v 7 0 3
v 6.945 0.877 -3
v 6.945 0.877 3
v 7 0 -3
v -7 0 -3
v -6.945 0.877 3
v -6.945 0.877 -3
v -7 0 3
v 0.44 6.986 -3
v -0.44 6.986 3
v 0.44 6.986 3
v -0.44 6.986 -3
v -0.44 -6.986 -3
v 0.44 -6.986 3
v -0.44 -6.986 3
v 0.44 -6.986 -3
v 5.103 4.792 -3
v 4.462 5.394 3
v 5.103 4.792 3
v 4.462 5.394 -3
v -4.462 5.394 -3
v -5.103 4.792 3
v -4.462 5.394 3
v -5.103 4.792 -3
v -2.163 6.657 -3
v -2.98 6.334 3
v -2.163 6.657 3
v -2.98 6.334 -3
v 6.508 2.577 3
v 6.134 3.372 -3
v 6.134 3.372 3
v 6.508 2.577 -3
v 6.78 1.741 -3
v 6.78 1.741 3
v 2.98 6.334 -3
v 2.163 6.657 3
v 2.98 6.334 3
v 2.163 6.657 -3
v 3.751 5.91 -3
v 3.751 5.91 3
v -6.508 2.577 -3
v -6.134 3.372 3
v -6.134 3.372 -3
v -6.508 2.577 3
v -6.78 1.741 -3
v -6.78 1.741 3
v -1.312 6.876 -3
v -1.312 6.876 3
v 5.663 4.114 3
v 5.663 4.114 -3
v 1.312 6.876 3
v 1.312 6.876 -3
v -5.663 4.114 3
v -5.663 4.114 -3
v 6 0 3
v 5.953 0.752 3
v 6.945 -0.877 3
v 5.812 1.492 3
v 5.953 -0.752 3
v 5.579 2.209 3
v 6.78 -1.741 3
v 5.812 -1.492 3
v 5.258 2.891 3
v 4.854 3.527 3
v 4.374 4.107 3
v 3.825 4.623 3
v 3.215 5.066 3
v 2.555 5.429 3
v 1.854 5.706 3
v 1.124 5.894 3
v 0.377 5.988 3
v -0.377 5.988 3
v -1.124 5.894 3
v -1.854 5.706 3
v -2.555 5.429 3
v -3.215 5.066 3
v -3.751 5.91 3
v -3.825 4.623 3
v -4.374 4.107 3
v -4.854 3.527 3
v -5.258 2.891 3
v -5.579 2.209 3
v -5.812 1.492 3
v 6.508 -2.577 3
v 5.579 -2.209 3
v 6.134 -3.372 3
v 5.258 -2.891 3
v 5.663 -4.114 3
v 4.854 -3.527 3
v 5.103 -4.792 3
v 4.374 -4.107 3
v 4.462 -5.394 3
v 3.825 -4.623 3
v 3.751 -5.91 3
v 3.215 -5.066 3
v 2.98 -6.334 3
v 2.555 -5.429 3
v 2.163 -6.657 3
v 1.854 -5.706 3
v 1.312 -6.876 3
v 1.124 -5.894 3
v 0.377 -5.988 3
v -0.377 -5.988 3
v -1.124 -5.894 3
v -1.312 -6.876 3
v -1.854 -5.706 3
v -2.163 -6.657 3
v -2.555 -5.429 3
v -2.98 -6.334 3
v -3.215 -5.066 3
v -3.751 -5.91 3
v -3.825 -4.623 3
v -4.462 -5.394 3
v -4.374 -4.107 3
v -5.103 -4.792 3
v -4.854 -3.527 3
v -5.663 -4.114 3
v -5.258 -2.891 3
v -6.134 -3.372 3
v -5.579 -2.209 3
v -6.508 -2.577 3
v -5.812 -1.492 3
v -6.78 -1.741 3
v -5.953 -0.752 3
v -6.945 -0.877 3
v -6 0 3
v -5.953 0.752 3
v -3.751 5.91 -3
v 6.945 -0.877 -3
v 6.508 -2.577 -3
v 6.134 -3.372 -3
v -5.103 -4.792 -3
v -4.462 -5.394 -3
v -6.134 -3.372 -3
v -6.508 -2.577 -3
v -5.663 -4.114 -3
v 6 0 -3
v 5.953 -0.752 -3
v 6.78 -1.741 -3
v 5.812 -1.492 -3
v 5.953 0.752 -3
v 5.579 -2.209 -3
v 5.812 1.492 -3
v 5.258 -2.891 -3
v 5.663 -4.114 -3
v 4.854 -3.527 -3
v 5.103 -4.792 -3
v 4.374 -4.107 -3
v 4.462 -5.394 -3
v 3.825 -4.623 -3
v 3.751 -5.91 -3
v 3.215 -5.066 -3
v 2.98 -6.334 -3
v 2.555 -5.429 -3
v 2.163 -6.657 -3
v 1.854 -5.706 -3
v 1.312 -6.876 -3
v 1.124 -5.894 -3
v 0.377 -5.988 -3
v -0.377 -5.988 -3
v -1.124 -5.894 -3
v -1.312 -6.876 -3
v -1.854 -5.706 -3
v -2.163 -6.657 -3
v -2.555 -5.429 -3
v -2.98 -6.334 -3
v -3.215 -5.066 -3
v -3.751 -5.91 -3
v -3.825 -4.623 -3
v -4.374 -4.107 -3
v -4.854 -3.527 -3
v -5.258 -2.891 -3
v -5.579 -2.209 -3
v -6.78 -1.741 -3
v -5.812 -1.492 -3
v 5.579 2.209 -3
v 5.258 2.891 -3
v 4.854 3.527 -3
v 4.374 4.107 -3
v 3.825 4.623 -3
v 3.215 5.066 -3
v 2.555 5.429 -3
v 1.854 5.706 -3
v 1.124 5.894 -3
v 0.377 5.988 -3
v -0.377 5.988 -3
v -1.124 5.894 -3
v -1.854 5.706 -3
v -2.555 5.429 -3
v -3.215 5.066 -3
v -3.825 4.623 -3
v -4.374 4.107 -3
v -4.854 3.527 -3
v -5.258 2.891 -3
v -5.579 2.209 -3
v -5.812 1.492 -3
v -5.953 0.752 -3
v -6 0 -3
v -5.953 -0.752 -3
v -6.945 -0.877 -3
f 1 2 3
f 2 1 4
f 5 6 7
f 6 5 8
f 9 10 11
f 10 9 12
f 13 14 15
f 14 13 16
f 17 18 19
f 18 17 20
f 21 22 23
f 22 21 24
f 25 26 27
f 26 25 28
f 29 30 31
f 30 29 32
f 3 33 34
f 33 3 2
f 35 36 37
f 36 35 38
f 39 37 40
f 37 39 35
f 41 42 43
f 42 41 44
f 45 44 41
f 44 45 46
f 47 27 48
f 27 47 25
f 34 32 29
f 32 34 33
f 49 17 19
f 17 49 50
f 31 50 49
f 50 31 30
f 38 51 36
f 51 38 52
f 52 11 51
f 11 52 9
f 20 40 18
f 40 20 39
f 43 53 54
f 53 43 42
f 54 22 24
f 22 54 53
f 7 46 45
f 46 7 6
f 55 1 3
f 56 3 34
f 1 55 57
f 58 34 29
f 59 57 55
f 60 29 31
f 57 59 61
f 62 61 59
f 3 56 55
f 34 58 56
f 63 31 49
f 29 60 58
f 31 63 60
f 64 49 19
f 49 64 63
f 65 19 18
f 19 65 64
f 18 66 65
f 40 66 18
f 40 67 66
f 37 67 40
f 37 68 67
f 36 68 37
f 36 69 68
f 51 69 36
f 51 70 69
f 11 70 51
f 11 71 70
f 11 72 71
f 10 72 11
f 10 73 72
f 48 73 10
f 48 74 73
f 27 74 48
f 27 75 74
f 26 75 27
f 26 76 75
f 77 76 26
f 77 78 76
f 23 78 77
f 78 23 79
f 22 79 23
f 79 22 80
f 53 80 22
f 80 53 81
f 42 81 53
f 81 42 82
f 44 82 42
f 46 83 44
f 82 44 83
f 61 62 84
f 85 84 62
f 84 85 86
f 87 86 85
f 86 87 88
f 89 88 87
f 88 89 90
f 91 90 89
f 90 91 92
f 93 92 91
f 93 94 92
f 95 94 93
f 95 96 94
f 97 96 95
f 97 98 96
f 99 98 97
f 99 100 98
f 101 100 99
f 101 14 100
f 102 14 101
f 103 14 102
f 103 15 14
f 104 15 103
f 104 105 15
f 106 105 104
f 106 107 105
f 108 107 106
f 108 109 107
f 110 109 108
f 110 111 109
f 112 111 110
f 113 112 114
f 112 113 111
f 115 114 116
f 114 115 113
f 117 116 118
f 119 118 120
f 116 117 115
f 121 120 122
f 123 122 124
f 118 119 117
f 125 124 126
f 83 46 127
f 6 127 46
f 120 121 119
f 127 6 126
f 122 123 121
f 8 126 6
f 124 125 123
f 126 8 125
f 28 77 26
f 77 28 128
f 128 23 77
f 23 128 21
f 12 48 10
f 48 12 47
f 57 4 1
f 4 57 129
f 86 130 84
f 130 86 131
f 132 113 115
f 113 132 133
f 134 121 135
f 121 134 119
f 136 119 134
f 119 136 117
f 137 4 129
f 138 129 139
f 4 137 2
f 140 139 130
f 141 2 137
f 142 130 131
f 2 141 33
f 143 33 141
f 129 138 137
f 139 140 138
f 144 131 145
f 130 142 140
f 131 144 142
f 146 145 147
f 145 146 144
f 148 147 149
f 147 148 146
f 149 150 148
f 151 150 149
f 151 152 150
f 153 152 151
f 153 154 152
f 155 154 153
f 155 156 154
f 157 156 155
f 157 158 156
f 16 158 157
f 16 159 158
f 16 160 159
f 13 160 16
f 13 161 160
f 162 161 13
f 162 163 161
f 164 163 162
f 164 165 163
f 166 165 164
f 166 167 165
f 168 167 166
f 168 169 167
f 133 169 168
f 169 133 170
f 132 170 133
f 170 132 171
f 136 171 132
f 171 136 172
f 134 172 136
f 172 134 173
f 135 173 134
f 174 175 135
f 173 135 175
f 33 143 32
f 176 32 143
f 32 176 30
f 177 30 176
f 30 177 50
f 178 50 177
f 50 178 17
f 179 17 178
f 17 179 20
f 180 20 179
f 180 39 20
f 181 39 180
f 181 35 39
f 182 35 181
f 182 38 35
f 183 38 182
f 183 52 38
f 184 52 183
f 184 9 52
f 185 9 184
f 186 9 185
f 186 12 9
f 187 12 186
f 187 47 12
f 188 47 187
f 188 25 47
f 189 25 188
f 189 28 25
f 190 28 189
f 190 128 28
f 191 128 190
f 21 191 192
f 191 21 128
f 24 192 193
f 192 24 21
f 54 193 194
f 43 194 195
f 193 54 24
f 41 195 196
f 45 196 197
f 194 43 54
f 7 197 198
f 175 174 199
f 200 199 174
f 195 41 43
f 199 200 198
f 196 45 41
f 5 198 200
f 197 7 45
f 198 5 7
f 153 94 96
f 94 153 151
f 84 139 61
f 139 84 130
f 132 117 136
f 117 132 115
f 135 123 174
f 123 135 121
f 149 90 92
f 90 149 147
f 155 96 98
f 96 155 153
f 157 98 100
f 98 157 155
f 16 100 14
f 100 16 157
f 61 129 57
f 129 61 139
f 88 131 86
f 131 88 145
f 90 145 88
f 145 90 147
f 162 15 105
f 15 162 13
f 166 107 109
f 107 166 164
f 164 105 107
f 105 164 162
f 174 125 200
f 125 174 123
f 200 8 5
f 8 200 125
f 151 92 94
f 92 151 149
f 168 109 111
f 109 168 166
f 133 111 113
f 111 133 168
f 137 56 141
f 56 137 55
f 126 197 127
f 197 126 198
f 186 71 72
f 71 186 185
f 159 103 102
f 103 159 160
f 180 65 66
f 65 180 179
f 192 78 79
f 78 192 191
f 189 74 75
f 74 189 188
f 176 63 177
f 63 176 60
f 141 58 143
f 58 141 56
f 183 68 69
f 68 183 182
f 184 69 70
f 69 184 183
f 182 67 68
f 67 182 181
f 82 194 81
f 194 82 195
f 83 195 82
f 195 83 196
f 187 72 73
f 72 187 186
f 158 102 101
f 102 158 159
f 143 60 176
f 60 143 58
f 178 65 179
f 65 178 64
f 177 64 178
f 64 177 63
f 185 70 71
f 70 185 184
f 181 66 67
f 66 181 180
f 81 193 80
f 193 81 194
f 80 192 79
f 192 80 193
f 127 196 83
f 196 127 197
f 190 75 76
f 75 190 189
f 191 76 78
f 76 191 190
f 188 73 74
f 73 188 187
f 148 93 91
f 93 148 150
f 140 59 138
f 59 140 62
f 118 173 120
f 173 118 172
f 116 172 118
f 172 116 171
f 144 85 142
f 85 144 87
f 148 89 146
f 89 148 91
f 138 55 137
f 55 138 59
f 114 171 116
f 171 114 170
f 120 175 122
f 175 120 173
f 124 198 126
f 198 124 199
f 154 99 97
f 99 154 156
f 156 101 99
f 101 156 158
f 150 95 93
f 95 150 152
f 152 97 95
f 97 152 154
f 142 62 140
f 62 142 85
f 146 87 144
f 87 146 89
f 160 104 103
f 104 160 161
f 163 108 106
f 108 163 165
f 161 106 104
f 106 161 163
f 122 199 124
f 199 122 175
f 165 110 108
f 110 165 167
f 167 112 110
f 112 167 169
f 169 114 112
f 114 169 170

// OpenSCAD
$fn = 50;


difference() {
	union() {
		translate(v = [0, 0, -3.0000000000]) {
			cylinder(h = 6, r = 7.0000000000);
		}
	}
	union() {
		translate(v = [0, 0, -100.0000000000]) {
			cylinder(h = 200, r = 6);
		}
	}
}
